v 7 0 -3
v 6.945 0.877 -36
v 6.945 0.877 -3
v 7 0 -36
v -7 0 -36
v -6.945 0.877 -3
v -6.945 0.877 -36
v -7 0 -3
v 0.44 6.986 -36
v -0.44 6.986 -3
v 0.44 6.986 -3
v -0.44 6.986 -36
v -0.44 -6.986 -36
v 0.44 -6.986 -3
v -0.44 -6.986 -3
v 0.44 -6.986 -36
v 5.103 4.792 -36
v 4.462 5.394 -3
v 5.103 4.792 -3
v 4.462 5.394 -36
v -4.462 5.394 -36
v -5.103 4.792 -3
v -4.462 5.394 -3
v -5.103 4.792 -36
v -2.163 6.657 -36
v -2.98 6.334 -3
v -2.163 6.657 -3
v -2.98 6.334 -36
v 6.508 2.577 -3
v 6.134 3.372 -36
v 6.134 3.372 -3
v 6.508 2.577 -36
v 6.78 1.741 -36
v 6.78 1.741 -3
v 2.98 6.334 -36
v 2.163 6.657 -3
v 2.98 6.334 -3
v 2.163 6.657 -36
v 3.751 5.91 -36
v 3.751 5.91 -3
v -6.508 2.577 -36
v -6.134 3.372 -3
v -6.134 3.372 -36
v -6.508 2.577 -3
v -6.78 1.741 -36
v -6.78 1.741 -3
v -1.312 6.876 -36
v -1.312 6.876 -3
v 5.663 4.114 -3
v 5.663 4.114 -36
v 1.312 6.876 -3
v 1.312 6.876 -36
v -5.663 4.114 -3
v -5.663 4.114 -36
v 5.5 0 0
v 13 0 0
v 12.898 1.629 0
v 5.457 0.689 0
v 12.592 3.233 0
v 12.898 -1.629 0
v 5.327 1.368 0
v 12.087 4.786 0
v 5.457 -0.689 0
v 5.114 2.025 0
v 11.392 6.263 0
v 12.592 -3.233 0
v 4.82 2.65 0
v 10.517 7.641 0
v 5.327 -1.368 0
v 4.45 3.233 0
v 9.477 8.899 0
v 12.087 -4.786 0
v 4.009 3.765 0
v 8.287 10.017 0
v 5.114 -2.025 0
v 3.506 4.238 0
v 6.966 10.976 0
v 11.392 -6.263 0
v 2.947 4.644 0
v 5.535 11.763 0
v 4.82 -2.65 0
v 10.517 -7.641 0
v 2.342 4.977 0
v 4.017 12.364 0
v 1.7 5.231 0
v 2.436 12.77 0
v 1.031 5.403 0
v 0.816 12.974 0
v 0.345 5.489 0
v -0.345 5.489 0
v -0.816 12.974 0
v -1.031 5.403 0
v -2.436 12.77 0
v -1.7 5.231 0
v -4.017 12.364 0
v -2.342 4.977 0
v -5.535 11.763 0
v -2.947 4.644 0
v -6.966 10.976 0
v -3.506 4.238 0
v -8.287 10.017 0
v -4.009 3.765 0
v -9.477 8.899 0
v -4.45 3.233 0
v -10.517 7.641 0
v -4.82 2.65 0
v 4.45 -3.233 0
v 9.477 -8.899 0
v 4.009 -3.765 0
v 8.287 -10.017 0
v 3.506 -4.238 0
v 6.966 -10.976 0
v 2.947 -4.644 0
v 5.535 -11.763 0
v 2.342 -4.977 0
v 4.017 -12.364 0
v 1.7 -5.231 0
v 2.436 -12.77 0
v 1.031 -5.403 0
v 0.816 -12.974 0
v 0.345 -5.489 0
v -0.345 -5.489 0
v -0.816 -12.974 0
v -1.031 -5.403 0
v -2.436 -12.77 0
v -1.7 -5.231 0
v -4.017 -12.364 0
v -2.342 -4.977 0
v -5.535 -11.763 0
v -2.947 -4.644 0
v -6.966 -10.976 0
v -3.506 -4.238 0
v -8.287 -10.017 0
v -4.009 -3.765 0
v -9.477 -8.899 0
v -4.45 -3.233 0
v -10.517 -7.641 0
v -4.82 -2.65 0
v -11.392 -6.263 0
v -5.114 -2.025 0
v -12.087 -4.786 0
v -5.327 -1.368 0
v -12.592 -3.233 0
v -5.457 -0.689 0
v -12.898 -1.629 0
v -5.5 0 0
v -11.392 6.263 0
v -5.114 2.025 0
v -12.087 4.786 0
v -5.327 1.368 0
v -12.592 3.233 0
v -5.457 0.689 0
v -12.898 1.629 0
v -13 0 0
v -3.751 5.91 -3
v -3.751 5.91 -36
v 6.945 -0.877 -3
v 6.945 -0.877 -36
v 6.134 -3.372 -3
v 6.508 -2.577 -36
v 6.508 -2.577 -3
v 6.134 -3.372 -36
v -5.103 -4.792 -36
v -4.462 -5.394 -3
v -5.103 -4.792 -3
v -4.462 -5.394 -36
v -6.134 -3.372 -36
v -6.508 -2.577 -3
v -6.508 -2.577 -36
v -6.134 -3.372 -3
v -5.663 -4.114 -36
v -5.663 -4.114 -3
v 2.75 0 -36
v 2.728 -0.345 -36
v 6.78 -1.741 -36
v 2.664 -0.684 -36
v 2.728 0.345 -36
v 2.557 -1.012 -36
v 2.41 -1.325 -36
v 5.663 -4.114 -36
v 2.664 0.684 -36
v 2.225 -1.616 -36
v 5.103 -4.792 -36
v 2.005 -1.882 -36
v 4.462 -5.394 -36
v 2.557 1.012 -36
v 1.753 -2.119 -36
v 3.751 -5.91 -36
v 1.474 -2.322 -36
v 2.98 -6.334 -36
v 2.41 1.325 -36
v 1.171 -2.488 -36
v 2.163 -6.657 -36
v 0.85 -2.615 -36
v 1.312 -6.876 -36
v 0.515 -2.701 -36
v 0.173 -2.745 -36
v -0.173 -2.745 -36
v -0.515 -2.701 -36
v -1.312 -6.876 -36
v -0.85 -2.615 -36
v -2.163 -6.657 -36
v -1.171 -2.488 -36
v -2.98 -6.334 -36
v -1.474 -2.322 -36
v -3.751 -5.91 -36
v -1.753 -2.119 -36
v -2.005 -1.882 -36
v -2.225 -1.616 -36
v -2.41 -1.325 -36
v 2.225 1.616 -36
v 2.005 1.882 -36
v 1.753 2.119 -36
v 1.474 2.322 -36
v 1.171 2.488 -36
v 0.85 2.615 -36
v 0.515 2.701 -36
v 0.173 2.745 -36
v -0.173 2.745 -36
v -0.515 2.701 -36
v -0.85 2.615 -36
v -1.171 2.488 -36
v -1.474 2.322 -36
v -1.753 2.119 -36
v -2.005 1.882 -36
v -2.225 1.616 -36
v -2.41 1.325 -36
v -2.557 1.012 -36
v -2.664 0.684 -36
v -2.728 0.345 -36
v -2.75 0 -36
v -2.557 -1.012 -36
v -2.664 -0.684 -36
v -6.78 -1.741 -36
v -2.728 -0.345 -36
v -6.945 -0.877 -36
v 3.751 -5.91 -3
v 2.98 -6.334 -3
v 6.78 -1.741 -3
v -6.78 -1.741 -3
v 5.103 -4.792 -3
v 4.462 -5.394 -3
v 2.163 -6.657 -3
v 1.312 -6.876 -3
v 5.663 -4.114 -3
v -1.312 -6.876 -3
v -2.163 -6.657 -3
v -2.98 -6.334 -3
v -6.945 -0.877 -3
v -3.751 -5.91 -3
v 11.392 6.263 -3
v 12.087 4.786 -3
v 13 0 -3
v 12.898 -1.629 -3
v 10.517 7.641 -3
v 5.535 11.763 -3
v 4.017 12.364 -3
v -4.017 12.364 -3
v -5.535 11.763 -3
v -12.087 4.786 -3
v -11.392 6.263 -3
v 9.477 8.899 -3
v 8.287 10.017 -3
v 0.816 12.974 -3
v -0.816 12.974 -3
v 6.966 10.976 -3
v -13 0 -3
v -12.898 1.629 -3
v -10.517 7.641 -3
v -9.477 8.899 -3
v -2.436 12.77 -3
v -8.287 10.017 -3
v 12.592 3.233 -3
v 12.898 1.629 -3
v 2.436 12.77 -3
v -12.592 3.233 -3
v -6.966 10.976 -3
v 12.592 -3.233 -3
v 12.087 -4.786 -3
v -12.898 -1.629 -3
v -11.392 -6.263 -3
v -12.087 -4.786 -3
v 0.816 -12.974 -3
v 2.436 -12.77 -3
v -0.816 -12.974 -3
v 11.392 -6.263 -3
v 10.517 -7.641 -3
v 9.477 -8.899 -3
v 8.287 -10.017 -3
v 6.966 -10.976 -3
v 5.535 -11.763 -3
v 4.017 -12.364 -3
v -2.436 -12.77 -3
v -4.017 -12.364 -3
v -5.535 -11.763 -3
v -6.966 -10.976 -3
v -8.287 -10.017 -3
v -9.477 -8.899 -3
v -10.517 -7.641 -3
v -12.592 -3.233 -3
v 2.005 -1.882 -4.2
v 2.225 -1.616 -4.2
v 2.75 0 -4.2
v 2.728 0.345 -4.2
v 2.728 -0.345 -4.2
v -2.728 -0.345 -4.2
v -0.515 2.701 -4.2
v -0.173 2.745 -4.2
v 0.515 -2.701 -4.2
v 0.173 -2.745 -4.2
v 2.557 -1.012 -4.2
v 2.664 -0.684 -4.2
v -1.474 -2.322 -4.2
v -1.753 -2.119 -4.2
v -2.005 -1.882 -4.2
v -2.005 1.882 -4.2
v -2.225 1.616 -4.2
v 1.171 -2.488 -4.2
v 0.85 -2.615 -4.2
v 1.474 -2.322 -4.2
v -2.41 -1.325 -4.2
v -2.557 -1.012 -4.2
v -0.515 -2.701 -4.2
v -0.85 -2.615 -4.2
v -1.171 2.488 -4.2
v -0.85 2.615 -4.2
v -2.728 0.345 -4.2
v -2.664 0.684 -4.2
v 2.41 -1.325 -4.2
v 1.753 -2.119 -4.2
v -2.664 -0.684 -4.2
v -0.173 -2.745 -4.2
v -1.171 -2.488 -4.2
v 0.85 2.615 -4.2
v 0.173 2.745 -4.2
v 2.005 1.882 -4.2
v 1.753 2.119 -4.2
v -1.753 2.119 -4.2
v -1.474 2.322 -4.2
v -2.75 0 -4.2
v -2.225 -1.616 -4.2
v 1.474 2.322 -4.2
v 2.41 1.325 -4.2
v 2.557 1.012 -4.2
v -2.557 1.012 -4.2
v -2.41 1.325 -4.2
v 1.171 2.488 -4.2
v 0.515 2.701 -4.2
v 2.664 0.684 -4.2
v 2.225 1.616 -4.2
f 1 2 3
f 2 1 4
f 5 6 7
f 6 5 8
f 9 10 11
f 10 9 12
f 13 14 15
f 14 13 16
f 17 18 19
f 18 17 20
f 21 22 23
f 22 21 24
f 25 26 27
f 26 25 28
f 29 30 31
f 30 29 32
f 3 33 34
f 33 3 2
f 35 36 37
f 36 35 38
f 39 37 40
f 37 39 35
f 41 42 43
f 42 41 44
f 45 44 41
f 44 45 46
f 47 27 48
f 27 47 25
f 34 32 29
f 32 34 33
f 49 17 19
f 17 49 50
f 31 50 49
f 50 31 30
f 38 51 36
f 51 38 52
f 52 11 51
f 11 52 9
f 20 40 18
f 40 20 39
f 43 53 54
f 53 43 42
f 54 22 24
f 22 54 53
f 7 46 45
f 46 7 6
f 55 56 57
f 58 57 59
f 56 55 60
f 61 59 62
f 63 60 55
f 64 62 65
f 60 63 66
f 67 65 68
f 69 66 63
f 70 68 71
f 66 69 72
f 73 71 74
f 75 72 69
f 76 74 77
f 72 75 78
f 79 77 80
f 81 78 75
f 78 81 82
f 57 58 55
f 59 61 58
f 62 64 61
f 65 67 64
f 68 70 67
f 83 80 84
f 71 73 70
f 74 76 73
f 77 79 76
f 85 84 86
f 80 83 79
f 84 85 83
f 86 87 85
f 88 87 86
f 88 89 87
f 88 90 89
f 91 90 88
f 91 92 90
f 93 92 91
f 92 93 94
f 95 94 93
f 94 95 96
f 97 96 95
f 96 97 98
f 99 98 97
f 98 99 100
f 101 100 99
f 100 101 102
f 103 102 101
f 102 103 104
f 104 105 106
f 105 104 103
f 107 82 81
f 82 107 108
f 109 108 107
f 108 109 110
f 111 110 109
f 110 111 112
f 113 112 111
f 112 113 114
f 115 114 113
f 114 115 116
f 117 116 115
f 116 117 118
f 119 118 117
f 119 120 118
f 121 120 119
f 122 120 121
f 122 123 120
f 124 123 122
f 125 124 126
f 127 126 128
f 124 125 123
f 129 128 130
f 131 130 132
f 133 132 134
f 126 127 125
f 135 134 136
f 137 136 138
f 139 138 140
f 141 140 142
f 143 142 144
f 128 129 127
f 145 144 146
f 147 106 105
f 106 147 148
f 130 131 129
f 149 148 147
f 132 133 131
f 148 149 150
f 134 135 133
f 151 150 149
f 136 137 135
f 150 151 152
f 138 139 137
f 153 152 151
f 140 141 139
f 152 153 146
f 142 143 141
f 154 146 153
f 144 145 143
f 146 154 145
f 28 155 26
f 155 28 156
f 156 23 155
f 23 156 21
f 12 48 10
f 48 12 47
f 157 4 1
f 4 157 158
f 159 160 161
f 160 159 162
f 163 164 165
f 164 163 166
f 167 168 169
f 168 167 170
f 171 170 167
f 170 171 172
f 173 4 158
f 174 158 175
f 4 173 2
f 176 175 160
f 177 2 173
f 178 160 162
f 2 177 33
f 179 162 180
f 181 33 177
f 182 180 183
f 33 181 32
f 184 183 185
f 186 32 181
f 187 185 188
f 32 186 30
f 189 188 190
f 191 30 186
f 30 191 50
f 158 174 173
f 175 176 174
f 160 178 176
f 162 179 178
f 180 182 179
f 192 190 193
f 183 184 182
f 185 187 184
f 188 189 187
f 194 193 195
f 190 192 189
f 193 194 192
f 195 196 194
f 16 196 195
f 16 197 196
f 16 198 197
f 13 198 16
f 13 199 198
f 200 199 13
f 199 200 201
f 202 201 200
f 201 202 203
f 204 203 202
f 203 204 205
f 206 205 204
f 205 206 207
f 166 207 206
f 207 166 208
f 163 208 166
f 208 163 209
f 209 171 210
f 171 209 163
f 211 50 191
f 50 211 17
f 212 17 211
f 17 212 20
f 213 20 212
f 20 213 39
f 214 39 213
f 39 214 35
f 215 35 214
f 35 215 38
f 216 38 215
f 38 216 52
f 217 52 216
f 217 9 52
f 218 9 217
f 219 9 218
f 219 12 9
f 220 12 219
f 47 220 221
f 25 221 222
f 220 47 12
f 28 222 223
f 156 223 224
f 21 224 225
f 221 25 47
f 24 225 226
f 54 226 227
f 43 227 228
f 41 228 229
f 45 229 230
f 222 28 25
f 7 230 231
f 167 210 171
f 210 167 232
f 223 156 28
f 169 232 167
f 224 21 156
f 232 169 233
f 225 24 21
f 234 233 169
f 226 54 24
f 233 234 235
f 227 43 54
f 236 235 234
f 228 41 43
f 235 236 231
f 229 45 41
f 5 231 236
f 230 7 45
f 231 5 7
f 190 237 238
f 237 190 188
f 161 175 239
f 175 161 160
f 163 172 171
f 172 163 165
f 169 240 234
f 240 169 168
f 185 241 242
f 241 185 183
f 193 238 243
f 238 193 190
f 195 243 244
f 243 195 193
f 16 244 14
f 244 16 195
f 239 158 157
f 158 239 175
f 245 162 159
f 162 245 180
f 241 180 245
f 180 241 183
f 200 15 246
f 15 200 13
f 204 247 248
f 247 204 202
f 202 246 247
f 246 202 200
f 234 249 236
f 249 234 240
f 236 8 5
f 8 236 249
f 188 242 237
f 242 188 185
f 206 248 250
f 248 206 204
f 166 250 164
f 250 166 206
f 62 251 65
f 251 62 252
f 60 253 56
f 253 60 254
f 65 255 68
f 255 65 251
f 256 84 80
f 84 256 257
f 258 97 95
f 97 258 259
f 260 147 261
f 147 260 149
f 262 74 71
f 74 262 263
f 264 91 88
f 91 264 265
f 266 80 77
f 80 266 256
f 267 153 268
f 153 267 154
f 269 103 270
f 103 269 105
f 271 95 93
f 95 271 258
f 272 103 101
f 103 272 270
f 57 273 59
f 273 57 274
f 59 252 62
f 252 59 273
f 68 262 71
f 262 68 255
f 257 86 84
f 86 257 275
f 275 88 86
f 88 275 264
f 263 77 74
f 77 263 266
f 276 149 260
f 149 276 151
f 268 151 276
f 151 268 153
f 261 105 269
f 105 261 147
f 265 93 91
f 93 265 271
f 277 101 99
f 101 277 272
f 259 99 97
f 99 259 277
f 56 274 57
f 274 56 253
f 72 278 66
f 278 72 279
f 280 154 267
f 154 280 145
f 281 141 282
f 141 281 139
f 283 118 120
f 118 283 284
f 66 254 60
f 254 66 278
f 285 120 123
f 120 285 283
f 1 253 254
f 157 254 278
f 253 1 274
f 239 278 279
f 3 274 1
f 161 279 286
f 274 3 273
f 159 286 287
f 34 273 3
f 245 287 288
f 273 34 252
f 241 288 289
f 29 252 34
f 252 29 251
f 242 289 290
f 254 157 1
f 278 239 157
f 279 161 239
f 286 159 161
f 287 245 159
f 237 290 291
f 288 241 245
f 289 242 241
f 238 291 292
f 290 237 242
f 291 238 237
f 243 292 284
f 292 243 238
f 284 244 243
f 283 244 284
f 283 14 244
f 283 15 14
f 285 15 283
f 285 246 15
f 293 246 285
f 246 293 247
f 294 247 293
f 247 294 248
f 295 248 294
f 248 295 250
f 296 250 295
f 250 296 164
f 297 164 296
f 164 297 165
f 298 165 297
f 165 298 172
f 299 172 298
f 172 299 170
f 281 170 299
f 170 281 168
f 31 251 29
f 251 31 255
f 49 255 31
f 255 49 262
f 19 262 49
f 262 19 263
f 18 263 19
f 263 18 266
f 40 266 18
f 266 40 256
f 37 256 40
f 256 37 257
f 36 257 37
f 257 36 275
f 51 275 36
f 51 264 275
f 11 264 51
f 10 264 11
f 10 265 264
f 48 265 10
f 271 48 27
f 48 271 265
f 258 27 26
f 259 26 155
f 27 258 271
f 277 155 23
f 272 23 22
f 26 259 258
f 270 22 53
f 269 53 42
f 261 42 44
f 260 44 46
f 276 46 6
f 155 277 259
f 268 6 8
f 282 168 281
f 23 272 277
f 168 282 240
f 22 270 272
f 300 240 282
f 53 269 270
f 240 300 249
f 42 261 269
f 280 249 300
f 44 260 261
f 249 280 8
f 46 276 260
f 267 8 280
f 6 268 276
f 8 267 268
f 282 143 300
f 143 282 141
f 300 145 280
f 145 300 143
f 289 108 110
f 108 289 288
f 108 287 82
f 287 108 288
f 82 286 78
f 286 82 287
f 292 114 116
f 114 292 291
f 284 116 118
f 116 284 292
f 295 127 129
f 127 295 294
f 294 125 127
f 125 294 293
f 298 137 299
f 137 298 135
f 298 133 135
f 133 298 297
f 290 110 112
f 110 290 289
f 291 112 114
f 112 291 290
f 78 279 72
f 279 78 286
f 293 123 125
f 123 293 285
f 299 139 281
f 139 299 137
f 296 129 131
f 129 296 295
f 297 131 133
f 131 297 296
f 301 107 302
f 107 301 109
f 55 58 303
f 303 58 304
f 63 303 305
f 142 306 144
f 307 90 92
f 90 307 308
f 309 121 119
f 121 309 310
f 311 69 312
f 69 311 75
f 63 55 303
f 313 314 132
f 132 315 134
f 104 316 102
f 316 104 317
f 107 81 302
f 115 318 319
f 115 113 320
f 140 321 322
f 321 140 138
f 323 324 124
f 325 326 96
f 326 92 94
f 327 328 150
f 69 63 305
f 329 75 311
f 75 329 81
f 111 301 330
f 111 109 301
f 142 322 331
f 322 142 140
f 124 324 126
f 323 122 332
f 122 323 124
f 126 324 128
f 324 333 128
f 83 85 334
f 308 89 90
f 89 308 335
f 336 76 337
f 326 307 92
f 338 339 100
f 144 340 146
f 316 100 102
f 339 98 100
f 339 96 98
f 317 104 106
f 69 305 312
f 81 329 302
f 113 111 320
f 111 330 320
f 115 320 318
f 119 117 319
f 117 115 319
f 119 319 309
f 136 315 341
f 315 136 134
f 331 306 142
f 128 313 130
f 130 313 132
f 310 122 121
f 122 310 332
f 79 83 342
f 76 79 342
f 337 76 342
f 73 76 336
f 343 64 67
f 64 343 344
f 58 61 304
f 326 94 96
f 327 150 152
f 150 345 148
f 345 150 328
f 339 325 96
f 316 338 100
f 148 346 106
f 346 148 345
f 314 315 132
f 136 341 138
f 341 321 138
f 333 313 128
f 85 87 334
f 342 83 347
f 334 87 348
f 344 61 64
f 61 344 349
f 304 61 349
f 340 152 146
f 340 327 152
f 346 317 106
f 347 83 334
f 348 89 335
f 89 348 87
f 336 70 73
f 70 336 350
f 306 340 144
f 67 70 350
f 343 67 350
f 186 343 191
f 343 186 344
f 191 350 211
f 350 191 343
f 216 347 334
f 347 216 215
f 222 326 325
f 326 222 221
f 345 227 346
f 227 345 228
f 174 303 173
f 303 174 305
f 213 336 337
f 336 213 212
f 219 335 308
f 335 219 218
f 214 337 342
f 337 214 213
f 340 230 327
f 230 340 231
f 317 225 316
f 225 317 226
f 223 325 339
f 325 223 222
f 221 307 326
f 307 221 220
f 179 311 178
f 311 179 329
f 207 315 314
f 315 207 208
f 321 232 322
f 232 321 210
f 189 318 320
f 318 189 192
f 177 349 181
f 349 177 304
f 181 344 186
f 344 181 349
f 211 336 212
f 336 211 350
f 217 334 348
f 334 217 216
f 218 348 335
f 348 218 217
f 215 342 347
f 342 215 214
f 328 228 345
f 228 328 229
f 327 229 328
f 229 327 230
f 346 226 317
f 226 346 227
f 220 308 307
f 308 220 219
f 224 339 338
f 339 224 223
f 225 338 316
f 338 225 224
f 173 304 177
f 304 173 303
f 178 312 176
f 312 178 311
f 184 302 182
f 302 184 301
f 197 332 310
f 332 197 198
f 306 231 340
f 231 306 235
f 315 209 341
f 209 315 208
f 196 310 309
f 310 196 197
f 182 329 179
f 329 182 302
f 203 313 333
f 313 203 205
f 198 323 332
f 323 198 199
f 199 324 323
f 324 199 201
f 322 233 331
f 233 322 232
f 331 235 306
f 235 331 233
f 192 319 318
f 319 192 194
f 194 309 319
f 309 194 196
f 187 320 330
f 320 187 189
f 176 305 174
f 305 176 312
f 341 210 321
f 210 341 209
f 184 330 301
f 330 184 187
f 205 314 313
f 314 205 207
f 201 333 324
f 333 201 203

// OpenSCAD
$fn = 50;


difference() {
	union() {
		translate(v = [0, 0, -36.0000000000]) {
			cylinder(h = 36, r = 7.0000000000);
		}
		translate(v = [0, 0, -3.0000000000]) {
			cylinder(h = 3, r = 13.0000000000);
		}
	}
	union() {
		translate(v = [0, 0, 0]) {
			rotate(a = [0, 0, 0]) {
				difference() {
					union() {
						#translate(v = [0, 0, -36.0000000000]) {
							cylinder(h = 36, r = 2.2500000000);
						}
						#translate(v = [0, 0, -4.2000000000]) {
							cylinder(h = 4.2000000000, r = 7.0000000000, r1 = 2.7500000000, r2 = 5.5000000000);
						}
						#translate(v = [0, 0, -36.0000000000]) {
							cylinder(h = 36, r = 2.7500000000);
						}
						#translate(v = [0, 0, -36.0000000000]) {
							cylinder(h = 36, r = 2.2500000000);
						}
					}
					union();
				}
			}
		}
	}
}
